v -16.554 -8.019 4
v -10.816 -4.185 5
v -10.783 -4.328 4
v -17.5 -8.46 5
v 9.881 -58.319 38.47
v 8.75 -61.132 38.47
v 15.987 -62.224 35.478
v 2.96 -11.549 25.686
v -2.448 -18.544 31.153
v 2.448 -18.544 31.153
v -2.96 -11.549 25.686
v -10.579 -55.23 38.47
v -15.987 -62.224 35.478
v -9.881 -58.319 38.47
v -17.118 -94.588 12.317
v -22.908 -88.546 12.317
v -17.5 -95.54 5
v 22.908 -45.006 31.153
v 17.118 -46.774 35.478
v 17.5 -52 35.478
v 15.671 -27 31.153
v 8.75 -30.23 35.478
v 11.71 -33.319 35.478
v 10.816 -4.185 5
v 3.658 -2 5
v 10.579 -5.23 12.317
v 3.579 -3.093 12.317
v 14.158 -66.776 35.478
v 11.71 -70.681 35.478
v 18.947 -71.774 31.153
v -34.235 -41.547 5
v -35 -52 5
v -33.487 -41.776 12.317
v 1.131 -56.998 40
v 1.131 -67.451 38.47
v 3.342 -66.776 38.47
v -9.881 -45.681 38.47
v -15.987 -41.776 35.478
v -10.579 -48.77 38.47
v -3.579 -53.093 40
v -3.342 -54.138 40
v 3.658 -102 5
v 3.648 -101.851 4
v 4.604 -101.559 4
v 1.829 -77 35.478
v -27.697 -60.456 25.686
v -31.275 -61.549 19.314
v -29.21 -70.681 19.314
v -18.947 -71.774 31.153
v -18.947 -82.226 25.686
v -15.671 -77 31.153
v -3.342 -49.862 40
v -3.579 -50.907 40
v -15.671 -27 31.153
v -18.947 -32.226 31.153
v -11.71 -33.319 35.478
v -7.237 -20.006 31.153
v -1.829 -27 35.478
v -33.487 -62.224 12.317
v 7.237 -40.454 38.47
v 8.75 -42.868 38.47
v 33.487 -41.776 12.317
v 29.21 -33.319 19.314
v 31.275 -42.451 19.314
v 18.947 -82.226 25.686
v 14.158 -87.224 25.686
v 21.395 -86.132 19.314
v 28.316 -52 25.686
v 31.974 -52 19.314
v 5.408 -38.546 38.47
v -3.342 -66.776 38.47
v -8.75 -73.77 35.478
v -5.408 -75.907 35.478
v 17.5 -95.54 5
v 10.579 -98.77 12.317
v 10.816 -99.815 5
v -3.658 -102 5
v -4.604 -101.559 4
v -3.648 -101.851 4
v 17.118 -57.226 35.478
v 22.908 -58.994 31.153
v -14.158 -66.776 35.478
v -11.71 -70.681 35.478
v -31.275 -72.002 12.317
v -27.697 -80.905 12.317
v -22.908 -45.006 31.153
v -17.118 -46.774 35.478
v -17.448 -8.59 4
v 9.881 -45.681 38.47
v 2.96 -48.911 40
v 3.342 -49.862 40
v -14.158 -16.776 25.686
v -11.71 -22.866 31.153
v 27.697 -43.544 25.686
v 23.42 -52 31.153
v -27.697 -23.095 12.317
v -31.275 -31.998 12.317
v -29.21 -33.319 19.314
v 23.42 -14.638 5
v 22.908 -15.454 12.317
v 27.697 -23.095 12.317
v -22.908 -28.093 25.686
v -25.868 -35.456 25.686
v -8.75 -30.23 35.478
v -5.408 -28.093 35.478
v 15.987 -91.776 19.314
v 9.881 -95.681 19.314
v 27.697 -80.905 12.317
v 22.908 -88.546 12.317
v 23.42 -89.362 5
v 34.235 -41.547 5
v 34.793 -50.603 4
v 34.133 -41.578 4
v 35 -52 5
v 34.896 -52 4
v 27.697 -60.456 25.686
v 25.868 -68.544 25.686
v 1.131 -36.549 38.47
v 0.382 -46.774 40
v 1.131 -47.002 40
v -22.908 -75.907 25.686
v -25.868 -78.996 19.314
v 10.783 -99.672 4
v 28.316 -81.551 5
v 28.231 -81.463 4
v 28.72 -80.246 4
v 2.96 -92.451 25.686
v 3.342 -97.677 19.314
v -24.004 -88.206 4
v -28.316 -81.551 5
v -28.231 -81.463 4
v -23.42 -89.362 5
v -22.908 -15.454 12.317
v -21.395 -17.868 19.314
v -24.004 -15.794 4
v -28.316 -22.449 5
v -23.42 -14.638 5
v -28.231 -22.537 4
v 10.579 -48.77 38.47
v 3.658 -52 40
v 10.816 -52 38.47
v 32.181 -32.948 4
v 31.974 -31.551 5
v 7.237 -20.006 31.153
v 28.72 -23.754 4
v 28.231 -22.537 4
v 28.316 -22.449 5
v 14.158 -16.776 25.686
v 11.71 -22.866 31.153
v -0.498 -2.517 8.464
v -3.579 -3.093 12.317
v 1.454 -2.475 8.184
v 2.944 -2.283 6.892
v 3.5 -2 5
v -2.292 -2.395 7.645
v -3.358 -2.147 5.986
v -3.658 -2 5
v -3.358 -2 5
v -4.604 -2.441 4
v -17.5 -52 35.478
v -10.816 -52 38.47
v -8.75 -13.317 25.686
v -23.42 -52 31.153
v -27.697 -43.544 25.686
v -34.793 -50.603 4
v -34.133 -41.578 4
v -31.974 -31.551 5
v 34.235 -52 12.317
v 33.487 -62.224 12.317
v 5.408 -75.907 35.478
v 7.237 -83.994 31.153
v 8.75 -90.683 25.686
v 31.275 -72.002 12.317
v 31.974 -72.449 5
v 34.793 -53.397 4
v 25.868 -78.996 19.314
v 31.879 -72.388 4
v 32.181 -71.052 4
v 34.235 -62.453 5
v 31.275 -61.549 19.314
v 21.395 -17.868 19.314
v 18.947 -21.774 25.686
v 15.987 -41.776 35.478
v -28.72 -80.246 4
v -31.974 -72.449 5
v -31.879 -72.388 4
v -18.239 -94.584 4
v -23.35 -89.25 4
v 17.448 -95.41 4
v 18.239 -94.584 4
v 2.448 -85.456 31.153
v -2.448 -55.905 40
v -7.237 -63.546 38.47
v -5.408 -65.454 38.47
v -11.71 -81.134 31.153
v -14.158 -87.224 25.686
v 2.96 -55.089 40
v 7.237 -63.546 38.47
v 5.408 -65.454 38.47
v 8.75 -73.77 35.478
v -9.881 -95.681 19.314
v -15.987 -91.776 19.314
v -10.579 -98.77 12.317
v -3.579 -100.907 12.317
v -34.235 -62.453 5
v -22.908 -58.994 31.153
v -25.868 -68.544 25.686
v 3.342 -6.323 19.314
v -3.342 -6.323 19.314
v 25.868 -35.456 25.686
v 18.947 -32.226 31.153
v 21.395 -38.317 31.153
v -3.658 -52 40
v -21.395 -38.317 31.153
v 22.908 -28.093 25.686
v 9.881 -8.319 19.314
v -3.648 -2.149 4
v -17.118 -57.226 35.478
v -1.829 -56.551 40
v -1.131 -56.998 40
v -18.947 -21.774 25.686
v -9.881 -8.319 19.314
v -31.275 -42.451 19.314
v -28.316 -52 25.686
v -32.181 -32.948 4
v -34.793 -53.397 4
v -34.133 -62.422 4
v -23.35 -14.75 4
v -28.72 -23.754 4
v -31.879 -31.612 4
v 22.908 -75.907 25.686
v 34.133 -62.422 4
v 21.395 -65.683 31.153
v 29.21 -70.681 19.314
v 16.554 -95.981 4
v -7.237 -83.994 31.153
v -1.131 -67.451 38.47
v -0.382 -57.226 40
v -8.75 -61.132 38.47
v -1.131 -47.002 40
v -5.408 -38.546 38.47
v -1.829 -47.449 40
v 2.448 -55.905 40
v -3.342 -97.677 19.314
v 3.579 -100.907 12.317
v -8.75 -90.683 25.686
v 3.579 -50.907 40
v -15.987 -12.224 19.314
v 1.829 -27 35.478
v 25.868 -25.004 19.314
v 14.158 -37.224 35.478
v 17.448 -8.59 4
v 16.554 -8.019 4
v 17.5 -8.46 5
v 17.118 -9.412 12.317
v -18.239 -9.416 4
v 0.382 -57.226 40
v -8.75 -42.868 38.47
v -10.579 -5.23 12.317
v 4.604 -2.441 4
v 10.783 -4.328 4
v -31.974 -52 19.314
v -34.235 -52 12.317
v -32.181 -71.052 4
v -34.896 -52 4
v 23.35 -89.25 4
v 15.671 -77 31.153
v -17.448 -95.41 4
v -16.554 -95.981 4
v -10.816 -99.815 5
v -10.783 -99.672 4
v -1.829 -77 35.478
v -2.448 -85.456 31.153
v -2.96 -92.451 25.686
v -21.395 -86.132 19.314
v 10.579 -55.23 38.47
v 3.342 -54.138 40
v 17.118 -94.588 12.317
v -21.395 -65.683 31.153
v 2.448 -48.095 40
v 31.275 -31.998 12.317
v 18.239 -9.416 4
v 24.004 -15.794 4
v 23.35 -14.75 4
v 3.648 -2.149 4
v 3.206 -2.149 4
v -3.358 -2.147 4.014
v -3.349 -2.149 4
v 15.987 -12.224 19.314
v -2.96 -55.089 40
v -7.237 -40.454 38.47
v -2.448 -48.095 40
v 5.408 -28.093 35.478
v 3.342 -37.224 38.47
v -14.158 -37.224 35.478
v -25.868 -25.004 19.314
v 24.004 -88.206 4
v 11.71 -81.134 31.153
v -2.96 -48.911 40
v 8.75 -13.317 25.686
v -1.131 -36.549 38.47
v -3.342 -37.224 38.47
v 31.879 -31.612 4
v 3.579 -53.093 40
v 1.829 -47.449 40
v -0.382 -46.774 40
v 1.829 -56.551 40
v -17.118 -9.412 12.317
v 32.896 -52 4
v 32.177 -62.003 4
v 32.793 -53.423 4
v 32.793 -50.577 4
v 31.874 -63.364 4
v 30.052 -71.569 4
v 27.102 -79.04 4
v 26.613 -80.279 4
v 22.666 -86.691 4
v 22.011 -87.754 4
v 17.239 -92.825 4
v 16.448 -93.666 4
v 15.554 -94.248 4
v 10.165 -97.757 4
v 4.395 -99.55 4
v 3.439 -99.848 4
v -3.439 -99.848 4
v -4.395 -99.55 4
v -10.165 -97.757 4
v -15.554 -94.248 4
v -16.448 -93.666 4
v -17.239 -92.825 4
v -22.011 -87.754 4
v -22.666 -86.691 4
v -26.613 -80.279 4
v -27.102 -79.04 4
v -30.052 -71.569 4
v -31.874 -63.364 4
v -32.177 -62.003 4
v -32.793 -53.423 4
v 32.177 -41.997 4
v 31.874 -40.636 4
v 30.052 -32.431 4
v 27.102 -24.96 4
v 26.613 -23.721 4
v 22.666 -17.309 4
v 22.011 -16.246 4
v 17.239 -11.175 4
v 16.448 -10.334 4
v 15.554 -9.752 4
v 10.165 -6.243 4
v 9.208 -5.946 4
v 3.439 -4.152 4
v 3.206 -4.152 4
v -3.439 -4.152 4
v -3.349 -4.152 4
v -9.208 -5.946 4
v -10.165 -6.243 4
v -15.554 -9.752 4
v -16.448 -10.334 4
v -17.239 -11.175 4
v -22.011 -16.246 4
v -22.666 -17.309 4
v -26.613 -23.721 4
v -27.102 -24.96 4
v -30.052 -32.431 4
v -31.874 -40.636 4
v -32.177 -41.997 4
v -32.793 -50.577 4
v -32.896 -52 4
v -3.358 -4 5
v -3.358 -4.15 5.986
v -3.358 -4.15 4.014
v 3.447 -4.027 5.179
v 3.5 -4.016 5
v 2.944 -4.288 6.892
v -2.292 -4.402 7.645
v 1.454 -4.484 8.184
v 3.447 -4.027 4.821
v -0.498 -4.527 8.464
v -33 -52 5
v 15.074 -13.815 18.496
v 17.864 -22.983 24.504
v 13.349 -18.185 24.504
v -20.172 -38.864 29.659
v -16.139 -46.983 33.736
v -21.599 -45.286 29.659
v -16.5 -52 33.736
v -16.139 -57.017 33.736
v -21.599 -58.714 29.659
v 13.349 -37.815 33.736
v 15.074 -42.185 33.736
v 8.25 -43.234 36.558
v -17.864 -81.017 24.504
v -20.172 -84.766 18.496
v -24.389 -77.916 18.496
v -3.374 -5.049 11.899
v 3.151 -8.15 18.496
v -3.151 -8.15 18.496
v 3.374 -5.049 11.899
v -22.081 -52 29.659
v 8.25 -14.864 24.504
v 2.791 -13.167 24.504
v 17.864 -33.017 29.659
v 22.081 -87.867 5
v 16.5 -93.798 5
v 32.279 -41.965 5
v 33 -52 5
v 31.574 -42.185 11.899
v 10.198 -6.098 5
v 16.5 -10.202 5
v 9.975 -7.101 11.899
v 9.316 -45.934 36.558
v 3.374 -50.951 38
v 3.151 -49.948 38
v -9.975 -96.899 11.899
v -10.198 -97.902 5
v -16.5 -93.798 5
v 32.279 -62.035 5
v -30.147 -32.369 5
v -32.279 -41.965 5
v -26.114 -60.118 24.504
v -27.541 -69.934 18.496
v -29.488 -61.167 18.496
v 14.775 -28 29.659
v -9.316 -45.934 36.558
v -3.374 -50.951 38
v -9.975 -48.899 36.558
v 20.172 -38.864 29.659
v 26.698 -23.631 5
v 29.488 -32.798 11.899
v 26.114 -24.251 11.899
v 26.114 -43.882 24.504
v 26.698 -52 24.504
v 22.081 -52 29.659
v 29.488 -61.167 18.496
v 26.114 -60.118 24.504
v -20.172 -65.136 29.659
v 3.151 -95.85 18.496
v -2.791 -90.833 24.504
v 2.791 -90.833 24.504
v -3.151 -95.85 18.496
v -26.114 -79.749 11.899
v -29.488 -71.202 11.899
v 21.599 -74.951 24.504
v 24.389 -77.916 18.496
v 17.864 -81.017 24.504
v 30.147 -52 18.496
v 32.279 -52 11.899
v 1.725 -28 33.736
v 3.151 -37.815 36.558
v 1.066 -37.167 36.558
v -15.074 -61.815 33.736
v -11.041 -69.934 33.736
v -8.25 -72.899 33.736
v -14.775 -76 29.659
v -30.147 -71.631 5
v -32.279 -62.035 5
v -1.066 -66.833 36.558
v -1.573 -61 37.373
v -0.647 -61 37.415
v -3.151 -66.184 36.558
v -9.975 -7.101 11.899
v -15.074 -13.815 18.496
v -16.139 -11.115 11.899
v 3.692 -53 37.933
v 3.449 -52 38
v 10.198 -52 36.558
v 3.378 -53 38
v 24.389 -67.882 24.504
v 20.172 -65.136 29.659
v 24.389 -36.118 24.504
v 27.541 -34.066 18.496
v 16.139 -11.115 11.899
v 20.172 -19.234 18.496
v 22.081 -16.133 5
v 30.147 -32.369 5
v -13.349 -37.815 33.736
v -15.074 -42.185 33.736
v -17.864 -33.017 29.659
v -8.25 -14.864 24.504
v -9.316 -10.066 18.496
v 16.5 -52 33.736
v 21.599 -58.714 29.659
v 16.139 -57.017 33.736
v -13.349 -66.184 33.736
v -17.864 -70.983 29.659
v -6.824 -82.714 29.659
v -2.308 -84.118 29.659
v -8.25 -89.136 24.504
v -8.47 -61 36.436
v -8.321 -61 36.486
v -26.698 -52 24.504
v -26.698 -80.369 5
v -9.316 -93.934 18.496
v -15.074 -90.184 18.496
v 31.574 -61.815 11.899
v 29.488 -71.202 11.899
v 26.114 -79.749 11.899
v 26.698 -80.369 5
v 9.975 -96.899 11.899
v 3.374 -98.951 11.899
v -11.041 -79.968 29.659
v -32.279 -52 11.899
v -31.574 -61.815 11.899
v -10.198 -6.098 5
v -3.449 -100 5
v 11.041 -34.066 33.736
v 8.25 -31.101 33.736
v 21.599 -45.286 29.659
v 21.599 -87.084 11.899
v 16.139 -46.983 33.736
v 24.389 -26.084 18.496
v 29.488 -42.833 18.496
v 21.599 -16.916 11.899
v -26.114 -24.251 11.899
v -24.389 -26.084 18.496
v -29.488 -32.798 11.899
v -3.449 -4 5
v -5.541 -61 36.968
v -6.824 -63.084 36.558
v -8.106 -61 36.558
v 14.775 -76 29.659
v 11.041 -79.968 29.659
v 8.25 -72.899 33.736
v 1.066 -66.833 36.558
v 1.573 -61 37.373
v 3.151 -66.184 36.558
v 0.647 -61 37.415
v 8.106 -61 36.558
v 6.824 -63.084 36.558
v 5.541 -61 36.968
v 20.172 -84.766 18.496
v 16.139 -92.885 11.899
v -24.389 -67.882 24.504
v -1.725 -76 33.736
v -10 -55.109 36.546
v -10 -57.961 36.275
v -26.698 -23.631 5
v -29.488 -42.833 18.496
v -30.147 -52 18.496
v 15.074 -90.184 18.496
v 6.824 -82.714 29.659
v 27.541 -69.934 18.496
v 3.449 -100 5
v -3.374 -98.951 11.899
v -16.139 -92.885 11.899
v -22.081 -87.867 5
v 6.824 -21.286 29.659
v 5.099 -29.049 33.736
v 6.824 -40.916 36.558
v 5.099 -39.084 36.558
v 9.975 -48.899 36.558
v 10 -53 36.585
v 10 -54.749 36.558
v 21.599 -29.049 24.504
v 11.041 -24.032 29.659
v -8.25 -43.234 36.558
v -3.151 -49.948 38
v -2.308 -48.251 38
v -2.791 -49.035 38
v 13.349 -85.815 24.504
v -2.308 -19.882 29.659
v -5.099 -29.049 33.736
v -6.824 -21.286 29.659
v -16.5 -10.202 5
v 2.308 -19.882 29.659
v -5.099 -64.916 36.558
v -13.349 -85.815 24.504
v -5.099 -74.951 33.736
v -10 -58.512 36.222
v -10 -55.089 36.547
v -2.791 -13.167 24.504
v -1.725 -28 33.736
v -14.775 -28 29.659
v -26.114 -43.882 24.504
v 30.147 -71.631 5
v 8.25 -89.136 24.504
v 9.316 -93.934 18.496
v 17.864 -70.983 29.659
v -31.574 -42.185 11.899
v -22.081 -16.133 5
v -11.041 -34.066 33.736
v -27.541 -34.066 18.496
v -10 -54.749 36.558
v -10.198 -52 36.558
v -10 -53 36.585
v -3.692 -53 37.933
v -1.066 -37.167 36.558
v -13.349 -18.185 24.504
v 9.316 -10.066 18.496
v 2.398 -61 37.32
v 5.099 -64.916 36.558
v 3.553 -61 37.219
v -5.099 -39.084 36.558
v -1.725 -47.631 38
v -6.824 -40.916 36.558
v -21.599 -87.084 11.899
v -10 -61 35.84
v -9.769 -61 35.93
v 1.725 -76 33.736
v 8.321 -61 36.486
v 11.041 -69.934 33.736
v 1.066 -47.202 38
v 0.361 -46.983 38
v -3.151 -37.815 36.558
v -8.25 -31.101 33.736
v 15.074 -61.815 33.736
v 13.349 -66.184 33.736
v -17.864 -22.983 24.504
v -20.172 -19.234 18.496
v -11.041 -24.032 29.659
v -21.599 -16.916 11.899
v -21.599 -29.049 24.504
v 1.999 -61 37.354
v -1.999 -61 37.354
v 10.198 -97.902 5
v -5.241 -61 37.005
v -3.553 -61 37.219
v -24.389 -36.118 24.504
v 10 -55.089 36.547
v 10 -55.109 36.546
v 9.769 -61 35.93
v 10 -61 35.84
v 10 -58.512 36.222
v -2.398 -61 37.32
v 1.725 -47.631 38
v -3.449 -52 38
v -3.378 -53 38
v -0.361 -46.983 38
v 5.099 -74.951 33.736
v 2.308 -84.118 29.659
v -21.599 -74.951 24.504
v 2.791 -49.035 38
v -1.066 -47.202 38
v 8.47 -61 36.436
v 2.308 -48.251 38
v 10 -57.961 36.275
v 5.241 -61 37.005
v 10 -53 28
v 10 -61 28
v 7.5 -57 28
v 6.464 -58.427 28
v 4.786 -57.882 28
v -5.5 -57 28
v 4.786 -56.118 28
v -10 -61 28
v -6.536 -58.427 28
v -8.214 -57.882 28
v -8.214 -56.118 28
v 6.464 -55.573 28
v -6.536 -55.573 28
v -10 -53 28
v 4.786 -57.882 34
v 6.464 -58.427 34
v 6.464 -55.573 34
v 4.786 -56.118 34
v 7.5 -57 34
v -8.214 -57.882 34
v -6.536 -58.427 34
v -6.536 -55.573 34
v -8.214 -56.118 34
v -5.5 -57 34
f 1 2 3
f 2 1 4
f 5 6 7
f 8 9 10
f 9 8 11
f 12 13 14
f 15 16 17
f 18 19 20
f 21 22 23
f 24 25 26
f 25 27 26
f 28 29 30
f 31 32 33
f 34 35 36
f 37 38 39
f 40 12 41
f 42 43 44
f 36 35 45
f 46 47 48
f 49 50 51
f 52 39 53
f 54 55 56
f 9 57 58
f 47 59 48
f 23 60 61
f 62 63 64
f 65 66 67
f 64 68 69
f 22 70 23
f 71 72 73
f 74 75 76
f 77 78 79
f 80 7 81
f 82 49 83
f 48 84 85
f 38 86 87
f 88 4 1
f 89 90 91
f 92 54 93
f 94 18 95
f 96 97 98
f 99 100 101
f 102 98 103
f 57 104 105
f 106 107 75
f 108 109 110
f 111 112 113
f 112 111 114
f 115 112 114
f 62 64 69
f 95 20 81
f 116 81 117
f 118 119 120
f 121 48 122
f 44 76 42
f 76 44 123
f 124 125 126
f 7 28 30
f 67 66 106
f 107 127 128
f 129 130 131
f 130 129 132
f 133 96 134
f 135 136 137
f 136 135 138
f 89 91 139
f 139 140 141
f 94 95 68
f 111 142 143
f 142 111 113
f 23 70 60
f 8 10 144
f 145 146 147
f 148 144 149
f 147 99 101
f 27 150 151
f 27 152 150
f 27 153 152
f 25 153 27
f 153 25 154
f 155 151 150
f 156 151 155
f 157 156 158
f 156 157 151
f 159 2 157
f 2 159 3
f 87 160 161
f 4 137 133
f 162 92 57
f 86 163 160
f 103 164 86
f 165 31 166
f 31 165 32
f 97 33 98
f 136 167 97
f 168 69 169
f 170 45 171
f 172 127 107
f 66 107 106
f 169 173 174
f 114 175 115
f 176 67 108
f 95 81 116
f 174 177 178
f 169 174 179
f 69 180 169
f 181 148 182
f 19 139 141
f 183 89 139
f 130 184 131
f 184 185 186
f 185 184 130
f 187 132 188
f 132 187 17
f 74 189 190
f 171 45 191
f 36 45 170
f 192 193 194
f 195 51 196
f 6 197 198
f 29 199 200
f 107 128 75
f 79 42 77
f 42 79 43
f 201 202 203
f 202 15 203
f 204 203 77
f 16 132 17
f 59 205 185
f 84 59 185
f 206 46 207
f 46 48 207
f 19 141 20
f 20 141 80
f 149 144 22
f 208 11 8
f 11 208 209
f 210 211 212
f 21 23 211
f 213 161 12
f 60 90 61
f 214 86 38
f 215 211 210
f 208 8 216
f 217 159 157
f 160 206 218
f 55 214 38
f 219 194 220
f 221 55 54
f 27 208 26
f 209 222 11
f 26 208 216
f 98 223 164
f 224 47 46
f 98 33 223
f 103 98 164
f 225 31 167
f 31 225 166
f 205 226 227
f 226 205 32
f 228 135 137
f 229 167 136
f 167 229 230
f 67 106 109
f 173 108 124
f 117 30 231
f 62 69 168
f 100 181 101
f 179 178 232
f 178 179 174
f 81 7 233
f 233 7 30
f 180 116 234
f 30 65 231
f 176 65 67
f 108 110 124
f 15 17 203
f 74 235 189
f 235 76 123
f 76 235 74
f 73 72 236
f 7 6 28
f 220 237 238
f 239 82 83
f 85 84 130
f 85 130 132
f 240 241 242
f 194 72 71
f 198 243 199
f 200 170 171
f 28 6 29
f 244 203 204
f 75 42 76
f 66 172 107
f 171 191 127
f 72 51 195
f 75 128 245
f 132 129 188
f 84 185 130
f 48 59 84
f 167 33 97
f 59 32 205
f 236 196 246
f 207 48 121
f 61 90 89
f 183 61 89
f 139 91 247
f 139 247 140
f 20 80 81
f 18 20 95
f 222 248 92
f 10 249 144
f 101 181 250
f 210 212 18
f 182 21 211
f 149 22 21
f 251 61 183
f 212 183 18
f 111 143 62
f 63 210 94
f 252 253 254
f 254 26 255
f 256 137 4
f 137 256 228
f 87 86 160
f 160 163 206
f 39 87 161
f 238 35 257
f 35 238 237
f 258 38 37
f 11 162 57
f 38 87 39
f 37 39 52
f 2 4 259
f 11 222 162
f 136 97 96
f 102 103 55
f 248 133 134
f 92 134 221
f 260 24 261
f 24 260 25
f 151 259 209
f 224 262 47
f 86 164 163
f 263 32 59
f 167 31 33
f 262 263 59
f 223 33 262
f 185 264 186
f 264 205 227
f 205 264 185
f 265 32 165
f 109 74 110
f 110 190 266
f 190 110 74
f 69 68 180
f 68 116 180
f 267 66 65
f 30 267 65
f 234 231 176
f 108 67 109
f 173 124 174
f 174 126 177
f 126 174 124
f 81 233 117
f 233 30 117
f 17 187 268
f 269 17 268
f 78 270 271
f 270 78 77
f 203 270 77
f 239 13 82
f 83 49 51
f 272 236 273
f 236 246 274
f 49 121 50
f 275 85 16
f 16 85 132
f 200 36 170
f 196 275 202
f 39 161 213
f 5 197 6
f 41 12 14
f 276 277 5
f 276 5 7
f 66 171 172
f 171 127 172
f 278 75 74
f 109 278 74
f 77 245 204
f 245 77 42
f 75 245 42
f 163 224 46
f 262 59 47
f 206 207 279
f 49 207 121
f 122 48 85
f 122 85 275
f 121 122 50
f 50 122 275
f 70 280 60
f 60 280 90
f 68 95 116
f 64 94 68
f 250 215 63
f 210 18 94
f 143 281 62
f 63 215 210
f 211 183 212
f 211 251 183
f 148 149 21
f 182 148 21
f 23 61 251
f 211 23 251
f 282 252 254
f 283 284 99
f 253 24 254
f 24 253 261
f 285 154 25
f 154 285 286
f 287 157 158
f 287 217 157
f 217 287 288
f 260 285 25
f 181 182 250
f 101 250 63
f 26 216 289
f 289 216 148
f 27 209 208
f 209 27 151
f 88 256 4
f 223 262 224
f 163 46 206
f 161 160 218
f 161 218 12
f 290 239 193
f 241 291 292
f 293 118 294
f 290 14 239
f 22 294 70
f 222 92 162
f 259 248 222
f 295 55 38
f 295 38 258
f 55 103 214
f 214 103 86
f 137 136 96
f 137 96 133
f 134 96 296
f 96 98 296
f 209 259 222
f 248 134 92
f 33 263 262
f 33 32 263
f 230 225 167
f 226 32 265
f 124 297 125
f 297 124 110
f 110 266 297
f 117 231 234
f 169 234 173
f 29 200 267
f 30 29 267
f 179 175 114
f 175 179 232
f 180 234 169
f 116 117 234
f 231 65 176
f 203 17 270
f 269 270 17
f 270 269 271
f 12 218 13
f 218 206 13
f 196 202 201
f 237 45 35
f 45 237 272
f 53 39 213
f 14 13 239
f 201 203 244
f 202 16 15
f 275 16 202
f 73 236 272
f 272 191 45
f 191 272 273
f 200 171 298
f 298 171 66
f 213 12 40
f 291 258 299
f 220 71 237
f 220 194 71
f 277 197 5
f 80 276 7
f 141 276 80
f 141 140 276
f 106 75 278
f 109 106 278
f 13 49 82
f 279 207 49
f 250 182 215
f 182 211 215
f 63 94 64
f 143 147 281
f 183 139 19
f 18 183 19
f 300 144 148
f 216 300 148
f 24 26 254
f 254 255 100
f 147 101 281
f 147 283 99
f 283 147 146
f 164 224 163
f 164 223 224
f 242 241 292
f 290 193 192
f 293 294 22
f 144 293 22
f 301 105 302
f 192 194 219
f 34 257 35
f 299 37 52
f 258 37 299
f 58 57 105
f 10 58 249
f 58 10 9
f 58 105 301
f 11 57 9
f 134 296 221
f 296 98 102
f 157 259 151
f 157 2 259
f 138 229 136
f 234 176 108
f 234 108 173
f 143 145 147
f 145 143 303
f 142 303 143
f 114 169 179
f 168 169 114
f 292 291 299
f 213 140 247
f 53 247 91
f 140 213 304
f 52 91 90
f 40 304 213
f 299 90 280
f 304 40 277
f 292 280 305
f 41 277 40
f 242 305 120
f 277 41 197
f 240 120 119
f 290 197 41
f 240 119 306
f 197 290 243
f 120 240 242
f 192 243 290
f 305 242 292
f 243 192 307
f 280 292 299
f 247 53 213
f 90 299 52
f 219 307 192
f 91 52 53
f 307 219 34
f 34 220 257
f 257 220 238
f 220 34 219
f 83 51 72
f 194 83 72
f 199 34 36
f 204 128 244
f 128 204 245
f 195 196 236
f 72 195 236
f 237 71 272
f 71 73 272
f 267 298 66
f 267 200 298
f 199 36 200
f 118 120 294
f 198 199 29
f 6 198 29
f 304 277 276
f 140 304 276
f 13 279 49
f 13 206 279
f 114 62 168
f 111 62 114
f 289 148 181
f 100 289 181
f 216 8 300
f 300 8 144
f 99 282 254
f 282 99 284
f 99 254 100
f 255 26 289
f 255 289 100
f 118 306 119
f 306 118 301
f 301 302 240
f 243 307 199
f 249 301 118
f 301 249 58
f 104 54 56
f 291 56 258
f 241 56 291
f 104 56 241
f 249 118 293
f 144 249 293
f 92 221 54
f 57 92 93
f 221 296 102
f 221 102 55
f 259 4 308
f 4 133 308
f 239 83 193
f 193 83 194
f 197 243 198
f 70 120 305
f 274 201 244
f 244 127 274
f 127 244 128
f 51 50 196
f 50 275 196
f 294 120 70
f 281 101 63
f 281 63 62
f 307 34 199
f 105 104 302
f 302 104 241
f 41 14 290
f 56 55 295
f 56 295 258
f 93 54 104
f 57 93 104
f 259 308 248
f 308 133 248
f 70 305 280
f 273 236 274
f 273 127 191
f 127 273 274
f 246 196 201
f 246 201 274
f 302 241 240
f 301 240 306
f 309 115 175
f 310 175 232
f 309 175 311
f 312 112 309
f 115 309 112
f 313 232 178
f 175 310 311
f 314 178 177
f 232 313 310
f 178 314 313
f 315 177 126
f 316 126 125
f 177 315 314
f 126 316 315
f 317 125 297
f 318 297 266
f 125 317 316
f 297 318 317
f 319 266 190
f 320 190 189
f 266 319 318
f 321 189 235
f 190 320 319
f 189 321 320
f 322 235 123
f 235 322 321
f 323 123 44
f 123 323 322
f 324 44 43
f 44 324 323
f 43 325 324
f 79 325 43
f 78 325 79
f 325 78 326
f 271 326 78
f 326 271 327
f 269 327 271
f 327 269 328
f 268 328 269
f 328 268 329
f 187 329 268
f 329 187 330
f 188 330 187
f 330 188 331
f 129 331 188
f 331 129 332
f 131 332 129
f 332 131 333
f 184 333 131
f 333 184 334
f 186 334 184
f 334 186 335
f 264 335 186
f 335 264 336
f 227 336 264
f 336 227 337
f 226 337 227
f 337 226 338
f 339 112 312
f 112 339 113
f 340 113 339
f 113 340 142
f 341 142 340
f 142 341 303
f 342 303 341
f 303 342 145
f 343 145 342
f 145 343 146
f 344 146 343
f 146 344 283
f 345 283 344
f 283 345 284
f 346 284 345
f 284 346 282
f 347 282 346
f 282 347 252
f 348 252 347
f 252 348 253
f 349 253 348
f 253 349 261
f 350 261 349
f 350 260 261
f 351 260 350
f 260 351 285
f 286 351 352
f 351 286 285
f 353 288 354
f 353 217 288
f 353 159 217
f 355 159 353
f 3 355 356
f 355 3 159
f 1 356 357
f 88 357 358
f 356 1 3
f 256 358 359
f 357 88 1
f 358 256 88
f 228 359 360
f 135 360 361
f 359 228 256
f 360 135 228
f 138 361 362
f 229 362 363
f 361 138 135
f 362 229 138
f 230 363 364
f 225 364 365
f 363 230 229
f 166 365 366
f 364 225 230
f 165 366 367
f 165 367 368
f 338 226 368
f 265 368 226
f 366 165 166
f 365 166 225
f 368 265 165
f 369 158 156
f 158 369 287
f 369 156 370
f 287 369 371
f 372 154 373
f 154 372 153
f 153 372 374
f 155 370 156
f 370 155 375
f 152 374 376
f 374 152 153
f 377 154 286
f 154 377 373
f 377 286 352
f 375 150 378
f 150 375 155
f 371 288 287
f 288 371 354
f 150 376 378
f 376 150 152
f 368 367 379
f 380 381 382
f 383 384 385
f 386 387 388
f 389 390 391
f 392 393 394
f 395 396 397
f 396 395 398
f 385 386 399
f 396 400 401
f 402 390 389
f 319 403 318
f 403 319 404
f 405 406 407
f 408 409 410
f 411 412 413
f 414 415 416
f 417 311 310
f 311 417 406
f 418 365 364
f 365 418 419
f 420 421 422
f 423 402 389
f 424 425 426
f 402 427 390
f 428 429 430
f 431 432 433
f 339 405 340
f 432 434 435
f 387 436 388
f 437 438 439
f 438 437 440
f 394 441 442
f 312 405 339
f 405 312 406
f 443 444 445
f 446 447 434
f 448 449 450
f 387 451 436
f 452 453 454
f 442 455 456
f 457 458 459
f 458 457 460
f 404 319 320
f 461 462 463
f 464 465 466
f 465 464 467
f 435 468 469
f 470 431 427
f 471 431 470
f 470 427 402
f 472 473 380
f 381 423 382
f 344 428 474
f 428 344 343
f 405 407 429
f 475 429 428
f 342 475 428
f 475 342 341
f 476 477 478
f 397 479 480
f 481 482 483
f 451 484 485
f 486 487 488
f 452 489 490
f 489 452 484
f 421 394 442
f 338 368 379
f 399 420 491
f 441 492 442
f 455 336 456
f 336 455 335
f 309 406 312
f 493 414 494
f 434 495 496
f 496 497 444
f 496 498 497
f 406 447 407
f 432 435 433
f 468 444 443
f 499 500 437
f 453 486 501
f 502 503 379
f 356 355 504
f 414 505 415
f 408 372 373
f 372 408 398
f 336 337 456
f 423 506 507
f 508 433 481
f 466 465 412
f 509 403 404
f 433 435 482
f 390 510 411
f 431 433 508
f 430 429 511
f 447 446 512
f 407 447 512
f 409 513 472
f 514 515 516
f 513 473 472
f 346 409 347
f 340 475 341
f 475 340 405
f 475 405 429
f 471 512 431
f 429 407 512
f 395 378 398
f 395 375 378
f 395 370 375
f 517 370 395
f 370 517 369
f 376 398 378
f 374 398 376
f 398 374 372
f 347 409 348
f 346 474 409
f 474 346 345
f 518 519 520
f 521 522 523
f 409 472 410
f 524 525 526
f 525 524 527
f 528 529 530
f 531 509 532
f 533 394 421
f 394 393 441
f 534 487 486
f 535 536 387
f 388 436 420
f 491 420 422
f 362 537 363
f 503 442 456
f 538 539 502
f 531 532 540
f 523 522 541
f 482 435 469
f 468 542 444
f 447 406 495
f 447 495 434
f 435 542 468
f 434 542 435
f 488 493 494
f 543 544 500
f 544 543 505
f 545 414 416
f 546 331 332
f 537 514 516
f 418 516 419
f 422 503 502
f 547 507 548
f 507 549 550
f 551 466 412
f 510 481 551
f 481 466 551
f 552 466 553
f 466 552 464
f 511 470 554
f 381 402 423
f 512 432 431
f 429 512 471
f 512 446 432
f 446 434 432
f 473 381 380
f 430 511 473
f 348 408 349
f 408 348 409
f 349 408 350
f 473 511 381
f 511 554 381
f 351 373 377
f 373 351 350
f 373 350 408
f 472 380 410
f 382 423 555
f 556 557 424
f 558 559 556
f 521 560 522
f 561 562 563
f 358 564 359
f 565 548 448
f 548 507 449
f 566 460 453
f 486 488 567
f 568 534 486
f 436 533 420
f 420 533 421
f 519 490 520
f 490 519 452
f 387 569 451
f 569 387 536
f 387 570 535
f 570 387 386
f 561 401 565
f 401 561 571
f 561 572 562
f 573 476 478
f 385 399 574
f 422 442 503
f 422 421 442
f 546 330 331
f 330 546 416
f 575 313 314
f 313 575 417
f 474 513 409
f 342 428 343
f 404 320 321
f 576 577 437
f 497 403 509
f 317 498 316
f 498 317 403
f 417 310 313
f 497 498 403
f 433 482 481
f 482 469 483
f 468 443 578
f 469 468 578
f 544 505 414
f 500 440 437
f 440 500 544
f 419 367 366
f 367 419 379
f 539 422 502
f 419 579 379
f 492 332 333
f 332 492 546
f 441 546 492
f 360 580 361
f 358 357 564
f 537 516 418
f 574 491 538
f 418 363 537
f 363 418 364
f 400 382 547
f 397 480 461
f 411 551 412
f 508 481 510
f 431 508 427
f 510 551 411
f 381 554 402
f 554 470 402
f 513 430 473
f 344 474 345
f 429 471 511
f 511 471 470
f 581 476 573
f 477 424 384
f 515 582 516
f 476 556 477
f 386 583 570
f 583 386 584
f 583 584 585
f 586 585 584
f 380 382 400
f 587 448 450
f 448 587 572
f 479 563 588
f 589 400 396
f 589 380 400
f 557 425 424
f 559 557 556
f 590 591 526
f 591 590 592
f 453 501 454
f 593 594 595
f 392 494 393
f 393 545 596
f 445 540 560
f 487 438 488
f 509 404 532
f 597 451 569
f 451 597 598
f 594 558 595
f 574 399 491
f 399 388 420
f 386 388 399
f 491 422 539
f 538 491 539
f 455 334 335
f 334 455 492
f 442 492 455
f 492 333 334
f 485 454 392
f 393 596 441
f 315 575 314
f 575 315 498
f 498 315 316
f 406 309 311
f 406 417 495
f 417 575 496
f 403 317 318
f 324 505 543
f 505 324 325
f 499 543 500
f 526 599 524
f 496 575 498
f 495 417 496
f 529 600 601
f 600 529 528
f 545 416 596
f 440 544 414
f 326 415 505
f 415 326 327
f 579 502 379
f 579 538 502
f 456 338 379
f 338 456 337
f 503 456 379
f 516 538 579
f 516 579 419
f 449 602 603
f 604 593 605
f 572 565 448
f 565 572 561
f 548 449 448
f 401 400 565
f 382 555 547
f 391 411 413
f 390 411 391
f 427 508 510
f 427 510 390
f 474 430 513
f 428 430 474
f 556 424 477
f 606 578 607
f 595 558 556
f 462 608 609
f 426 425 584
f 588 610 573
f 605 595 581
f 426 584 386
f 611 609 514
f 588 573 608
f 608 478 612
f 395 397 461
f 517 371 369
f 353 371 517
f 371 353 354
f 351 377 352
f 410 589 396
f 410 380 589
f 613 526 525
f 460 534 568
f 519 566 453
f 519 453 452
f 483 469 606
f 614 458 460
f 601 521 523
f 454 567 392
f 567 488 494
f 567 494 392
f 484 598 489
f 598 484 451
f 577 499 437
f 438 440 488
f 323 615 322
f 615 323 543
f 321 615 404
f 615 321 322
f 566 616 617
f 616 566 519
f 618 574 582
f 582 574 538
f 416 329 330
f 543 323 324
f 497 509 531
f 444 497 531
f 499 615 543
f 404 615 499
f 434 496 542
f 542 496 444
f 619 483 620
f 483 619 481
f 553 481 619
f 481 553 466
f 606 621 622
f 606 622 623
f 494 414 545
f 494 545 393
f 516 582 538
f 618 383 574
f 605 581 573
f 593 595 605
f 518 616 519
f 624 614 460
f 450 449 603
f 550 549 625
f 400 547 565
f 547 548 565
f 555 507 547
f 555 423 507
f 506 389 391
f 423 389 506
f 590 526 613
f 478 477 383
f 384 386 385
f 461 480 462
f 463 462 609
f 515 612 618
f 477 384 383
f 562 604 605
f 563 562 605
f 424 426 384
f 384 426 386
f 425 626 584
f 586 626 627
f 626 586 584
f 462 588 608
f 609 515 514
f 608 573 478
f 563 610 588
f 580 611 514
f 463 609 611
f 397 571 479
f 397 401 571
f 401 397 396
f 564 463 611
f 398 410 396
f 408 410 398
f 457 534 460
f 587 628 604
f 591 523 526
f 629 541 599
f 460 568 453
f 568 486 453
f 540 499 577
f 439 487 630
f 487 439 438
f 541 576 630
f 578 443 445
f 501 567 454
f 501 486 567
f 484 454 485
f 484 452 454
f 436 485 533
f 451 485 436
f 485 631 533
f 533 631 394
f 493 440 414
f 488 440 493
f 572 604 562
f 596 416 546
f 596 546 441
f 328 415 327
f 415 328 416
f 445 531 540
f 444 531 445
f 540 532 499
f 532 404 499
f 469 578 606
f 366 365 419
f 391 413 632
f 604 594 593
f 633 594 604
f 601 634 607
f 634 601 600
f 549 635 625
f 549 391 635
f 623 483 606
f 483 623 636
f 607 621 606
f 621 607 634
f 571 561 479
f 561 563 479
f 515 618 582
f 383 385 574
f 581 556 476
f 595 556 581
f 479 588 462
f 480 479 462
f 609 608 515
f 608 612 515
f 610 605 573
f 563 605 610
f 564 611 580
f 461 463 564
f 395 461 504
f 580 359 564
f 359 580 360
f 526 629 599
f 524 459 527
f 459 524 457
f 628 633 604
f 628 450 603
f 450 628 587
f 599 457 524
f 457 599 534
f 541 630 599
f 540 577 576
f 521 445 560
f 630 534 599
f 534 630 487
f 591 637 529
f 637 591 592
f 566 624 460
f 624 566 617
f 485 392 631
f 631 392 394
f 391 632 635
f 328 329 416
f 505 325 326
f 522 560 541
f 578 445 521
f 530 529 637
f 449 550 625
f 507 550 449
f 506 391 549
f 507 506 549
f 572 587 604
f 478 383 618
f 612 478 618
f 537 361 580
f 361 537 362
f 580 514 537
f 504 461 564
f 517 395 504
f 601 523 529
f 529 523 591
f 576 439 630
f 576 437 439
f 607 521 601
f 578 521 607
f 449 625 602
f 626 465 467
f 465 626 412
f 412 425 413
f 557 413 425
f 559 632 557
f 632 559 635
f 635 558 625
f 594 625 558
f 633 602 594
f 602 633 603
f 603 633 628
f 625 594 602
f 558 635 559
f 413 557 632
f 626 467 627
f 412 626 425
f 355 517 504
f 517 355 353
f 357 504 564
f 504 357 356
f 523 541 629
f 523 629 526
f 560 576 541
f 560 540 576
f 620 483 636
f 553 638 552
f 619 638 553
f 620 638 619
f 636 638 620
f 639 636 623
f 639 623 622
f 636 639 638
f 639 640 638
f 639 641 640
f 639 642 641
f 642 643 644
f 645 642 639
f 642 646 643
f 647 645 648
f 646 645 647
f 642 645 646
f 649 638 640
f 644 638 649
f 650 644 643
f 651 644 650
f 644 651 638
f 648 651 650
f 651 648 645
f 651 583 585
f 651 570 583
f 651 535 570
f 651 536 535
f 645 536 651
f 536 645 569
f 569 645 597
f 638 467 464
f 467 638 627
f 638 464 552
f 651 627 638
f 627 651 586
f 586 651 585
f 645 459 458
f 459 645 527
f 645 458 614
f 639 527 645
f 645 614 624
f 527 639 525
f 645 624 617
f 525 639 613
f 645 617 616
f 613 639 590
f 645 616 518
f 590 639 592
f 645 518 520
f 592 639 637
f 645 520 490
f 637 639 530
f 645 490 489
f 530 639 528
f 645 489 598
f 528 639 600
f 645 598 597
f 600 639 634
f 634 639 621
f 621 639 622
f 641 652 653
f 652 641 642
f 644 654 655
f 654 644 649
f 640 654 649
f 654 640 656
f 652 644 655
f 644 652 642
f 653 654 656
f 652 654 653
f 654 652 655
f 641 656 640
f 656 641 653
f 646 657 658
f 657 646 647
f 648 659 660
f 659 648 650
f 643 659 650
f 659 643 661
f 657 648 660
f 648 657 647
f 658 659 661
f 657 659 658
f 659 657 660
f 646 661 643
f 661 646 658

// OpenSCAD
standoff=-61;

difference (){

   translate ([+0,-52,5]) resize([70,100,70]) sphere (100);

    translate ([-35,-102,-46]) cube ([90, 120, 50]); // big cube to cut sphere
    translate ([+000,+0,+5]) rotate ([90,0,0])  cylinder (h=20, d=7);//wire hole
    
    translate ([+0,-52,5]) resize([66,96,66]) sphere (100); // put at bottom when done

}

difference(){
    translate ([-10,standoff,28]) cube ([20, 8, 10]); // big cube to cut sphere
    translate ([+6,standoff+4,+26]) rotate ([0,0,0])  cylinder (h=8, d=3);//wire hole
    translate ([-7,standoff+4,+26]) rotate ([0,0,0])  cylinder (h=8, d=3);//wire hole
}
